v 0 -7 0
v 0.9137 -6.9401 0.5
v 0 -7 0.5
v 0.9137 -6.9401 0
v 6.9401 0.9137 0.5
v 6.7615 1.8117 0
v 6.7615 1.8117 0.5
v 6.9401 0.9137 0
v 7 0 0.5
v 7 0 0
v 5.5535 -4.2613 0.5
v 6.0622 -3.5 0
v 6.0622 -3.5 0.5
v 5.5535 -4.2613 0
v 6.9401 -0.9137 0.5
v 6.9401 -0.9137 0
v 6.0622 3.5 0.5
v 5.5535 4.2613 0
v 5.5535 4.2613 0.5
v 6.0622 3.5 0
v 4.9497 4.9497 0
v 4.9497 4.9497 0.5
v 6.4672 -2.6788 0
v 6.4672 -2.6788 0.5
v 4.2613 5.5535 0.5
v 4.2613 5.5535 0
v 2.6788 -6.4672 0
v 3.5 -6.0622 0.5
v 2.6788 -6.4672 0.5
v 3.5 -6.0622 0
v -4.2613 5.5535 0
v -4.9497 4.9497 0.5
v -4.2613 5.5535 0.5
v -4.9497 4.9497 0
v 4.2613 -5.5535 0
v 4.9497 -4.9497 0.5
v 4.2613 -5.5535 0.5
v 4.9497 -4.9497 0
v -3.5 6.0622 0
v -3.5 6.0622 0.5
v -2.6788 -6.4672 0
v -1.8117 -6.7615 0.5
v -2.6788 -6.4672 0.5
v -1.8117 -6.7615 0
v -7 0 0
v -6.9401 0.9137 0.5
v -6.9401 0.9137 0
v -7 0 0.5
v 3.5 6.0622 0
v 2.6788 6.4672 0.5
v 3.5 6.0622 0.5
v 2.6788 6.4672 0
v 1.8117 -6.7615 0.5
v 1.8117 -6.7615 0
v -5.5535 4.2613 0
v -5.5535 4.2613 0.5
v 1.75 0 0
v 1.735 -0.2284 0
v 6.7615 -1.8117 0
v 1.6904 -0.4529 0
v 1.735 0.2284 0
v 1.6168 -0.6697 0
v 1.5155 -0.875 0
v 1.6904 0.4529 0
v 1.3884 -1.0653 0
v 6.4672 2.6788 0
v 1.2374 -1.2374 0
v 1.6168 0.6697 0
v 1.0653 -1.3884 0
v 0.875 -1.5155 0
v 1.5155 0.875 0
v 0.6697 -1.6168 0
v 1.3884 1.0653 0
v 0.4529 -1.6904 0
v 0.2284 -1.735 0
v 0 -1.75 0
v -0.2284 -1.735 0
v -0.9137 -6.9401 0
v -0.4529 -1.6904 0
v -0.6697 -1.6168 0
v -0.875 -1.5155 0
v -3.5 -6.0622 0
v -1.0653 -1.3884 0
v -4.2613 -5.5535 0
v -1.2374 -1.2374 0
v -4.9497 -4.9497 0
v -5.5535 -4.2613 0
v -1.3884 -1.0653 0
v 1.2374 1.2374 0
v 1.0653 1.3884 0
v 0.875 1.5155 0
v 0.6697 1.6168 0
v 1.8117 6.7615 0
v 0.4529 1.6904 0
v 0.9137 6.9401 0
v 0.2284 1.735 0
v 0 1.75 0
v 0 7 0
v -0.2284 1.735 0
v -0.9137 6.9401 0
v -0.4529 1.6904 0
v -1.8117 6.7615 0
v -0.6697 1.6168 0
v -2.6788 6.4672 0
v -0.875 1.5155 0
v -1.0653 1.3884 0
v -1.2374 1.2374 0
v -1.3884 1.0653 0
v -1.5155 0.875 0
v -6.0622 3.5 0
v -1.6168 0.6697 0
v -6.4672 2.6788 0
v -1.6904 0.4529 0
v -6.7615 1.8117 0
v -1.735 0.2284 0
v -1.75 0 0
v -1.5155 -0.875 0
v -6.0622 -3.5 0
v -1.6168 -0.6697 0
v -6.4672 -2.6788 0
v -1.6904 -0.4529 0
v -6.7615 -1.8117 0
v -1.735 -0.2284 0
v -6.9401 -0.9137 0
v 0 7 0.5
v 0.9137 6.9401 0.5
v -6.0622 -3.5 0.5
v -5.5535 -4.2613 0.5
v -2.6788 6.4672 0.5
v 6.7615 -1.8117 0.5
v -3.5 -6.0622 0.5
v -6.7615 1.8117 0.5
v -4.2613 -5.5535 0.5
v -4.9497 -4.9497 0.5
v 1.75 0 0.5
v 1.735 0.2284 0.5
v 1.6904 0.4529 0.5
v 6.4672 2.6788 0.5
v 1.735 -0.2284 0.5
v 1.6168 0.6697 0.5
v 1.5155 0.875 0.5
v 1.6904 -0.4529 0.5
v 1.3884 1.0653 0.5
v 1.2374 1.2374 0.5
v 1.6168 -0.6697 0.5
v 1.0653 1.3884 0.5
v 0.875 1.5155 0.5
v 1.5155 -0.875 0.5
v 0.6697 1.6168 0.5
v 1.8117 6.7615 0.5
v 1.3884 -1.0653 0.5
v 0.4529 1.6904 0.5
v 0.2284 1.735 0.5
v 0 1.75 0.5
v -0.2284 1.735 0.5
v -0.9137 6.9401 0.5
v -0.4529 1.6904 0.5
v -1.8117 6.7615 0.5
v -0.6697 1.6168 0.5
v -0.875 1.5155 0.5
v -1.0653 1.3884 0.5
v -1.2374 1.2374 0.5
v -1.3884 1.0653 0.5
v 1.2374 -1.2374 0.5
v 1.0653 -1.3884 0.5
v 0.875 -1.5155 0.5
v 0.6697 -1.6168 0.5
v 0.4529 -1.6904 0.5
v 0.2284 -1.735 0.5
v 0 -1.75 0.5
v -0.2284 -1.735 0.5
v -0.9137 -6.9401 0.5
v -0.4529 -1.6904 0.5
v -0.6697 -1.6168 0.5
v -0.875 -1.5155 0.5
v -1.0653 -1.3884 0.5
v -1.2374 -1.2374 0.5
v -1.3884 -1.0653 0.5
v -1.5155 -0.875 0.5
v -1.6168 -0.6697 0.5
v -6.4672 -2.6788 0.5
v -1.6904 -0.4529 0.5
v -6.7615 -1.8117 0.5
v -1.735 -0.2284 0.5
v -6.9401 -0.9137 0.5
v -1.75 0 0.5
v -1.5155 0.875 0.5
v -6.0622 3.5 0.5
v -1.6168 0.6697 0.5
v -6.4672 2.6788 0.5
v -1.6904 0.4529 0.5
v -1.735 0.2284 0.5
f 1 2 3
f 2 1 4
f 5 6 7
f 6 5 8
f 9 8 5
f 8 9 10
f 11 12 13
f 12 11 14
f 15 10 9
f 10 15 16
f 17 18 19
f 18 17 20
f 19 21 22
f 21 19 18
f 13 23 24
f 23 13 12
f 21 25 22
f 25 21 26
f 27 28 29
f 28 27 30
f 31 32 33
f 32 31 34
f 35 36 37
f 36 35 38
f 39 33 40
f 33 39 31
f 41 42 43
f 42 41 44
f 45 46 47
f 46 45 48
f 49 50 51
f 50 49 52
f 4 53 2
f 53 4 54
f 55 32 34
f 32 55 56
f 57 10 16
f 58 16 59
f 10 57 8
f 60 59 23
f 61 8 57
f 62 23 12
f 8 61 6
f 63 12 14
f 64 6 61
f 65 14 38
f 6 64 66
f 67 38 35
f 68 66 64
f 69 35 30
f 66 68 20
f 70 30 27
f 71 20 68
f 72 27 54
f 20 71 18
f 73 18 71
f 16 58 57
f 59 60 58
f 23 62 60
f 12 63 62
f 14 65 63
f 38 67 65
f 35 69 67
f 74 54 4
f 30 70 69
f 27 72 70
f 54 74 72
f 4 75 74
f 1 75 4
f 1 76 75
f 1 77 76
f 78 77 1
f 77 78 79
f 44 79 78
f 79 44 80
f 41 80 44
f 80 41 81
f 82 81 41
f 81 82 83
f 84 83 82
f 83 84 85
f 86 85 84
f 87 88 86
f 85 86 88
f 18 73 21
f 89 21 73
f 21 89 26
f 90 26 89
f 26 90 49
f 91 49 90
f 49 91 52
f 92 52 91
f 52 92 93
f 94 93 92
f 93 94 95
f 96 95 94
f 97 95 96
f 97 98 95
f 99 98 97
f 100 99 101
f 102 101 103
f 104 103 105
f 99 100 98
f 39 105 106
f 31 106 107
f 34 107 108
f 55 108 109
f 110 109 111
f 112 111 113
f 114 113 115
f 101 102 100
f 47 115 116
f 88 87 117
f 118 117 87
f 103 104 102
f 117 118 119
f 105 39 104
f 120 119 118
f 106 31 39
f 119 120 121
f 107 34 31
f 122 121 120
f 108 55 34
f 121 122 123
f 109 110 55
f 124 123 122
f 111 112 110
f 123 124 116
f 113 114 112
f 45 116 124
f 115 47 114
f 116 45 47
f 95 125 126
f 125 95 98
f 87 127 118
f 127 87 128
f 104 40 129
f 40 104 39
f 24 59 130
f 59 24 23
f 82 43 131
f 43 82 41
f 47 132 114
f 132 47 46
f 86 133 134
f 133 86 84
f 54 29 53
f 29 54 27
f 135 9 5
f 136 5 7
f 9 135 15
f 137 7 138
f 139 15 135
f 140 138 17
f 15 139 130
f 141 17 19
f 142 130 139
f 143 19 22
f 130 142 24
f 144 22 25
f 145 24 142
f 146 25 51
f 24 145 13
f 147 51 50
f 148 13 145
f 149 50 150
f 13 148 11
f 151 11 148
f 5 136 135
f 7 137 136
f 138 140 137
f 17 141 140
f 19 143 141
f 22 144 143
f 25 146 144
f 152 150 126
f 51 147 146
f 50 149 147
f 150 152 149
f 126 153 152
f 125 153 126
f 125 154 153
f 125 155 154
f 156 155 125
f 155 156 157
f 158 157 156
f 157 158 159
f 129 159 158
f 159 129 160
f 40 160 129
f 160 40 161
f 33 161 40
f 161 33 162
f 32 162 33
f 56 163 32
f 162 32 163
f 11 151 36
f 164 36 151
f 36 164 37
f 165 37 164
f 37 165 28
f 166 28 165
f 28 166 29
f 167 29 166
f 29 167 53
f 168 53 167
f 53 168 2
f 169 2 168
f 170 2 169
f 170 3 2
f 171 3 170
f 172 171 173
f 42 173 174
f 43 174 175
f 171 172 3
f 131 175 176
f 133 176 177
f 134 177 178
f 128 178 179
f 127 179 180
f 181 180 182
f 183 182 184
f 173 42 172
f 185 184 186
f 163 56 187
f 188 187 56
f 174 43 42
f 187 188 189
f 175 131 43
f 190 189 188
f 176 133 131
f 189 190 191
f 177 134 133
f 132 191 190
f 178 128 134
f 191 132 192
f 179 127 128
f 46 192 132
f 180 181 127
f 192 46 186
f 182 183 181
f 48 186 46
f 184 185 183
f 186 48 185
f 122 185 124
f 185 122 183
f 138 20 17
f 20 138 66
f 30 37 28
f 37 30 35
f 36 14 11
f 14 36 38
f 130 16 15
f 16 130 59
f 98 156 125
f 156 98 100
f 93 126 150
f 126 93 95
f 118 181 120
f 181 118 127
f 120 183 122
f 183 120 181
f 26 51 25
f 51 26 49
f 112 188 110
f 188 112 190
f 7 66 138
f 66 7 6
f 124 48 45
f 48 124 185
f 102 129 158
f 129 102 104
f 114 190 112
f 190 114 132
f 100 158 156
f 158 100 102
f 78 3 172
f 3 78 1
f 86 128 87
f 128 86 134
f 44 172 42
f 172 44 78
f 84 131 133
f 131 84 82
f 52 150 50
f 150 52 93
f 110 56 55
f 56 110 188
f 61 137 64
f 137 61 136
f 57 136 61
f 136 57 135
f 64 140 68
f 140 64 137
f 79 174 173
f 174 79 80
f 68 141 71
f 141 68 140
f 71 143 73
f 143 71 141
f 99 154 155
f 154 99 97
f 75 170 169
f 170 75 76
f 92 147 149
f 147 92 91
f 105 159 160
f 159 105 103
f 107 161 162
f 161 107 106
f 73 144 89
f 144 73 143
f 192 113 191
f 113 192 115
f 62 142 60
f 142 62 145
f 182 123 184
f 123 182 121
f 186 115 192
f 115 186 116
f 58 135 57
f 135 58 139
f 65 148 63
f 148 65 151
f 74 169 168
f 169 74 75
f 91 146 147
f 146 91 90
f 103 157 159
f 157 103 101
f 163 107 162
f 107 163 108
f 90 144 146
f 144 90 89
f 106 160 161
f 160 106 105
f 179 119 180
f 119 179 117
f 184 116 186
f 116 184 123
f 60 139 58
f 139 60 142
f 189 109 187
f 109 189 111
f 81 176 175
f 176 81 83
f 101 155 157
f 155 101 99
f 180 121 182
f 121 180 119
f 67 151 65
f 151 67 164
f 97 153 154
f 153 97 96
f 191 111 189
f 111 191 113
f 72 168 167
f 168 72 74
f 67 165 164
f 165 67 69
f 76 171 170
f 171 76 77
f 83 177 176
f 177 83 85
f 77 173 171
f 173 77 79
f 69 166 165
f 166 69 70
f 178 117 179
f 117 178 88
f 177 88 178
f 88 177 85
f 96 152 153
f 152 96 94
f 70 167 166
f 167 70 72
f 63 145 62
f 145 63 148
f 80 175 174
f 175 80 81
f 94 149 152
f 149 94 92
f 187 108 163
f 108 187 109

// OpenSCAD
// file: parameters.scad
// =============================================================================
// Gen-BO — nightly 2026-10-07 (physics_scorer, honest magpylib watts)
// Flush seat + wider copper + tight assists: the magnets sit on the steel in 5.00 mm through-pockets (carrier = magnet height, recess 0 instead of 0.10 mm), so the magnet faces are 0.2 mm closer while still exactly 0.50 mm from the wound envelope; the bobbin lip beyond the copper is trimmed 1.0 → 0.8 mm (still the 0.8 mm wall minimum, stator web still 1.2 mm), which widens each copper sector by ~0.6° on 28–70 mm × 18.0 mm-build bobbins; and the diametric Ø5 assists are pulled in to R43/50/57 (±7 mm) where they add most flux under the copper. Same Ø134 × 4.76 mm steel discs as Gen-BL.
// Clocking 0 deg (magnets N facing S) + D-flat keyed bore + index notch + flip-symmetric hole map.
// Windable 2-piece bobbin; turns = physics_scorer turns_fit; copper only between flanges.
// Steel back-iron: 2× Ø134 × 4.76 mm (3/16") mild-steel discs (steel_backiron_disc.dxf); magnets sit ON the steel
// (through-pockets) -> score with --back-iron.
// =============================================================================
topology            = "dual_rotor";

// --- Wire / winding (physics_scorer winding-fit) -------------------------------
wire_awg            = 26;
wire_od             = 0.45;     // insulated OD mm (bare 0.405)
fill_realistic      = 0.65;     // insulated-wire area / window (DENSE layered wind with a jig; scorer cap 0.65)
turns               = 595;       // = physics_scorer turns_fit (do NOT raise)
coil_former_type    = "bobbin";
coil_core_inset     = 18.00;     // radial copper build: hub = copper boundary inset by this
wind_build_axial    = 0.0;      // nothing proud of the flanges
wind_build_radial   = 0.0;

// --- Bobbin (base + lid) ---------------------------------------------------------
coil_id_r           = 28.00;    // copper boundary sector
coil_od_r           = 70.00;
span_deg            = 53.24;    // = pitch - 2*asin((wall+0.85)/coil_id_r) -> >=1.2 mm stator web
former_web          = 8.10;     // copper height between flanges (TALL copper: steel keeps Bz up)
flange_t            = 0.80;     // >= 0.8 mm FDM wall rule (tall winds push on the flanges)
wall                = 0.80;     // flange lip beyond copper
former_bare_h       = former_web + 2 * flange_t;
coil_envelope_h     = former_bare_h + 2 * wind_build_axial;
tab_w               = 7.0;
tab_len             = 7.0;
tab_h               = former_bare_h / 2;
pin_d               = 1.9;      // 1.75 mm filament locating pin
coil_mount_r        = coil_od_r + 0.2 + 4.0;
lead_y              = 1.6;
lead_slot_w         = 0.9;
lead_groove_d       = 0.6;

// --- Gap -------------------------------------------------------------------------
run_clear           = 0.50;     // rotor face -> flange
gap_spacer_h        = run_clear + wind_build_axial;
m2m                 = coil_envelope_h + 2 * run_clear;   // rotor face to rotor face (= gap_sleeve length)

// --- Stator ----------------------------------------------------------------------
coil_stations       = 6;
bay_clear           = 0.25;
stator_thick        = former_bare_h;                        // bobbins flush both faces
stator_od           = 158;
shaft_clear_stator  = 14.0;     // stator is static; gap sleeve OD 12 spins inside

// --- Rotor(s) --------------------------------------------------------------------
magnet_Br           = 1.43;     // N52
magnet_d_large      = 20.0;
magnet_h_large      = 5.0;      // one O20x5 per pocket
magnet_h_small      = 5.0;      // one O5x5 per pocket
halbach_magnetisation = "diametric"; // O5x5 assist magnets MUST be DIAMETRICALLY magnetised (tangential)
rotor_b_same_axis   = true;     // same-index magnets share one axis: N faces S across the gap
large_pocket_d      = 20.3;
small_pocket_d      = 5.3;
pocket_h            = 5.00;     // THROUGH the carrier: magnet back face sits on the steel disc (FLUSH seat: carrier = magnet height, magnet face level with the rotor face)
large_n             = 8;
R_large             = 50.0;
R_small_inner       = 43.0;
R_small_mid         = 50.0;
R_small_outer       = 57.0;
small_r_list        = [R_small_inner, R_small_mid, R_small_outer];   // O5 pockets between poles
carrier_od          = 134.0;
carrier_thick       = pocket_h;
hub_h               = 12.0;     // > steel_t + insert: radial set-screw clears the steel
hub_od              = 24.0;     // slim hub so the M4 brace rods fit at R~18 inside the coil ring
hub_insert_d        = 4.0;      // M3 heat-set insert, radial, bears on the D-flat
rotor_b_offset_deg  = 0.0;      // CLOCKING: magnets directly opposite
shaft_key           = "dflat";
dflat_depth         = 0.5;      // 8 mm shaft with 0.5 mm flat (7.5 across flat)
index_notch_d       = 3.0;

// --- Steel back-iron (buyable laser-cut) -------------------------------------------
steel_t             = 4.76;      // mild steel thickness (image method ignores it; sized from steel_flux.py so the return path stays well below saturation)
steel_center_hole   = 26.0;     // slips over the rotor hub (OD 24)
steel_od            = carrier_od;   // steel disc OD = rotor carrier OD

// --- Modular MAX interface ----------------------------------------------------------
shaft_bore          = 8.35;
dflat_x             = 4.0 - dflat_depth + (shaft_bore - 8.0) / 2;
bearing_d           = 21.85;
bearing_h           = 7.2;
m3_clear            = 3.5;
bolt_r_inner        = 30.0;     // M3 steel-disc clamp bolts (inside the magnet ring)
bolt_n_inner        = 4;
bolt_inner_angles   = [0, 90, 180, 270];
bolt_r_outer        = 63.0;     // M3 steel-disc clamp bolts (outside the magnet ring)
bolt_outer_angles   = [45, 135, 225, 315];
flange_bolt_r       = 73.0;     // frame rods: OUTSIDE the rotor OD (rotors spin inside them)
flange_bolt_n       = 6;
flange_bolt_offset  = 30.00;    // between coil stations -> never cuts a lead groove/tab
brace_r             = 18.0;
brace_d             = 4.3;      // temporary M4 jack rods (assembly only)
brace_n             = 4;
brace_angles        = [45, 135, 225, 315];          // flip-symmetric

spacer_pad_od       = 14.0;
spacer_pad_id       = m3_clear;
endbell_od          = 158;
endbell_thick       = 8.0;
endbell_shaft_clear = 10.0;
collar_h            = 10.0;
standoff_od         = 9.0;
frame_standoff_h    = run_clear + carrier_thick + hub_h + collar_h + 2.0;
sleeve_od           = 12.0;
plate_max_mm        = 410;

$fn = 64;
// main file
// Gen-BO — assembly gap shim, h = run_clear (rotor face -> flange); copper is inside the flanges
include <parameters.scad>;
$fn = 48;
difference() {
    cylinder(d=spacer_pad_od, h=gap_spacer_h);
    translate([0, 0, -0.1]) cylinder(d=spacer_pad_id, h=gap_spacer_h + 0.2);
}
